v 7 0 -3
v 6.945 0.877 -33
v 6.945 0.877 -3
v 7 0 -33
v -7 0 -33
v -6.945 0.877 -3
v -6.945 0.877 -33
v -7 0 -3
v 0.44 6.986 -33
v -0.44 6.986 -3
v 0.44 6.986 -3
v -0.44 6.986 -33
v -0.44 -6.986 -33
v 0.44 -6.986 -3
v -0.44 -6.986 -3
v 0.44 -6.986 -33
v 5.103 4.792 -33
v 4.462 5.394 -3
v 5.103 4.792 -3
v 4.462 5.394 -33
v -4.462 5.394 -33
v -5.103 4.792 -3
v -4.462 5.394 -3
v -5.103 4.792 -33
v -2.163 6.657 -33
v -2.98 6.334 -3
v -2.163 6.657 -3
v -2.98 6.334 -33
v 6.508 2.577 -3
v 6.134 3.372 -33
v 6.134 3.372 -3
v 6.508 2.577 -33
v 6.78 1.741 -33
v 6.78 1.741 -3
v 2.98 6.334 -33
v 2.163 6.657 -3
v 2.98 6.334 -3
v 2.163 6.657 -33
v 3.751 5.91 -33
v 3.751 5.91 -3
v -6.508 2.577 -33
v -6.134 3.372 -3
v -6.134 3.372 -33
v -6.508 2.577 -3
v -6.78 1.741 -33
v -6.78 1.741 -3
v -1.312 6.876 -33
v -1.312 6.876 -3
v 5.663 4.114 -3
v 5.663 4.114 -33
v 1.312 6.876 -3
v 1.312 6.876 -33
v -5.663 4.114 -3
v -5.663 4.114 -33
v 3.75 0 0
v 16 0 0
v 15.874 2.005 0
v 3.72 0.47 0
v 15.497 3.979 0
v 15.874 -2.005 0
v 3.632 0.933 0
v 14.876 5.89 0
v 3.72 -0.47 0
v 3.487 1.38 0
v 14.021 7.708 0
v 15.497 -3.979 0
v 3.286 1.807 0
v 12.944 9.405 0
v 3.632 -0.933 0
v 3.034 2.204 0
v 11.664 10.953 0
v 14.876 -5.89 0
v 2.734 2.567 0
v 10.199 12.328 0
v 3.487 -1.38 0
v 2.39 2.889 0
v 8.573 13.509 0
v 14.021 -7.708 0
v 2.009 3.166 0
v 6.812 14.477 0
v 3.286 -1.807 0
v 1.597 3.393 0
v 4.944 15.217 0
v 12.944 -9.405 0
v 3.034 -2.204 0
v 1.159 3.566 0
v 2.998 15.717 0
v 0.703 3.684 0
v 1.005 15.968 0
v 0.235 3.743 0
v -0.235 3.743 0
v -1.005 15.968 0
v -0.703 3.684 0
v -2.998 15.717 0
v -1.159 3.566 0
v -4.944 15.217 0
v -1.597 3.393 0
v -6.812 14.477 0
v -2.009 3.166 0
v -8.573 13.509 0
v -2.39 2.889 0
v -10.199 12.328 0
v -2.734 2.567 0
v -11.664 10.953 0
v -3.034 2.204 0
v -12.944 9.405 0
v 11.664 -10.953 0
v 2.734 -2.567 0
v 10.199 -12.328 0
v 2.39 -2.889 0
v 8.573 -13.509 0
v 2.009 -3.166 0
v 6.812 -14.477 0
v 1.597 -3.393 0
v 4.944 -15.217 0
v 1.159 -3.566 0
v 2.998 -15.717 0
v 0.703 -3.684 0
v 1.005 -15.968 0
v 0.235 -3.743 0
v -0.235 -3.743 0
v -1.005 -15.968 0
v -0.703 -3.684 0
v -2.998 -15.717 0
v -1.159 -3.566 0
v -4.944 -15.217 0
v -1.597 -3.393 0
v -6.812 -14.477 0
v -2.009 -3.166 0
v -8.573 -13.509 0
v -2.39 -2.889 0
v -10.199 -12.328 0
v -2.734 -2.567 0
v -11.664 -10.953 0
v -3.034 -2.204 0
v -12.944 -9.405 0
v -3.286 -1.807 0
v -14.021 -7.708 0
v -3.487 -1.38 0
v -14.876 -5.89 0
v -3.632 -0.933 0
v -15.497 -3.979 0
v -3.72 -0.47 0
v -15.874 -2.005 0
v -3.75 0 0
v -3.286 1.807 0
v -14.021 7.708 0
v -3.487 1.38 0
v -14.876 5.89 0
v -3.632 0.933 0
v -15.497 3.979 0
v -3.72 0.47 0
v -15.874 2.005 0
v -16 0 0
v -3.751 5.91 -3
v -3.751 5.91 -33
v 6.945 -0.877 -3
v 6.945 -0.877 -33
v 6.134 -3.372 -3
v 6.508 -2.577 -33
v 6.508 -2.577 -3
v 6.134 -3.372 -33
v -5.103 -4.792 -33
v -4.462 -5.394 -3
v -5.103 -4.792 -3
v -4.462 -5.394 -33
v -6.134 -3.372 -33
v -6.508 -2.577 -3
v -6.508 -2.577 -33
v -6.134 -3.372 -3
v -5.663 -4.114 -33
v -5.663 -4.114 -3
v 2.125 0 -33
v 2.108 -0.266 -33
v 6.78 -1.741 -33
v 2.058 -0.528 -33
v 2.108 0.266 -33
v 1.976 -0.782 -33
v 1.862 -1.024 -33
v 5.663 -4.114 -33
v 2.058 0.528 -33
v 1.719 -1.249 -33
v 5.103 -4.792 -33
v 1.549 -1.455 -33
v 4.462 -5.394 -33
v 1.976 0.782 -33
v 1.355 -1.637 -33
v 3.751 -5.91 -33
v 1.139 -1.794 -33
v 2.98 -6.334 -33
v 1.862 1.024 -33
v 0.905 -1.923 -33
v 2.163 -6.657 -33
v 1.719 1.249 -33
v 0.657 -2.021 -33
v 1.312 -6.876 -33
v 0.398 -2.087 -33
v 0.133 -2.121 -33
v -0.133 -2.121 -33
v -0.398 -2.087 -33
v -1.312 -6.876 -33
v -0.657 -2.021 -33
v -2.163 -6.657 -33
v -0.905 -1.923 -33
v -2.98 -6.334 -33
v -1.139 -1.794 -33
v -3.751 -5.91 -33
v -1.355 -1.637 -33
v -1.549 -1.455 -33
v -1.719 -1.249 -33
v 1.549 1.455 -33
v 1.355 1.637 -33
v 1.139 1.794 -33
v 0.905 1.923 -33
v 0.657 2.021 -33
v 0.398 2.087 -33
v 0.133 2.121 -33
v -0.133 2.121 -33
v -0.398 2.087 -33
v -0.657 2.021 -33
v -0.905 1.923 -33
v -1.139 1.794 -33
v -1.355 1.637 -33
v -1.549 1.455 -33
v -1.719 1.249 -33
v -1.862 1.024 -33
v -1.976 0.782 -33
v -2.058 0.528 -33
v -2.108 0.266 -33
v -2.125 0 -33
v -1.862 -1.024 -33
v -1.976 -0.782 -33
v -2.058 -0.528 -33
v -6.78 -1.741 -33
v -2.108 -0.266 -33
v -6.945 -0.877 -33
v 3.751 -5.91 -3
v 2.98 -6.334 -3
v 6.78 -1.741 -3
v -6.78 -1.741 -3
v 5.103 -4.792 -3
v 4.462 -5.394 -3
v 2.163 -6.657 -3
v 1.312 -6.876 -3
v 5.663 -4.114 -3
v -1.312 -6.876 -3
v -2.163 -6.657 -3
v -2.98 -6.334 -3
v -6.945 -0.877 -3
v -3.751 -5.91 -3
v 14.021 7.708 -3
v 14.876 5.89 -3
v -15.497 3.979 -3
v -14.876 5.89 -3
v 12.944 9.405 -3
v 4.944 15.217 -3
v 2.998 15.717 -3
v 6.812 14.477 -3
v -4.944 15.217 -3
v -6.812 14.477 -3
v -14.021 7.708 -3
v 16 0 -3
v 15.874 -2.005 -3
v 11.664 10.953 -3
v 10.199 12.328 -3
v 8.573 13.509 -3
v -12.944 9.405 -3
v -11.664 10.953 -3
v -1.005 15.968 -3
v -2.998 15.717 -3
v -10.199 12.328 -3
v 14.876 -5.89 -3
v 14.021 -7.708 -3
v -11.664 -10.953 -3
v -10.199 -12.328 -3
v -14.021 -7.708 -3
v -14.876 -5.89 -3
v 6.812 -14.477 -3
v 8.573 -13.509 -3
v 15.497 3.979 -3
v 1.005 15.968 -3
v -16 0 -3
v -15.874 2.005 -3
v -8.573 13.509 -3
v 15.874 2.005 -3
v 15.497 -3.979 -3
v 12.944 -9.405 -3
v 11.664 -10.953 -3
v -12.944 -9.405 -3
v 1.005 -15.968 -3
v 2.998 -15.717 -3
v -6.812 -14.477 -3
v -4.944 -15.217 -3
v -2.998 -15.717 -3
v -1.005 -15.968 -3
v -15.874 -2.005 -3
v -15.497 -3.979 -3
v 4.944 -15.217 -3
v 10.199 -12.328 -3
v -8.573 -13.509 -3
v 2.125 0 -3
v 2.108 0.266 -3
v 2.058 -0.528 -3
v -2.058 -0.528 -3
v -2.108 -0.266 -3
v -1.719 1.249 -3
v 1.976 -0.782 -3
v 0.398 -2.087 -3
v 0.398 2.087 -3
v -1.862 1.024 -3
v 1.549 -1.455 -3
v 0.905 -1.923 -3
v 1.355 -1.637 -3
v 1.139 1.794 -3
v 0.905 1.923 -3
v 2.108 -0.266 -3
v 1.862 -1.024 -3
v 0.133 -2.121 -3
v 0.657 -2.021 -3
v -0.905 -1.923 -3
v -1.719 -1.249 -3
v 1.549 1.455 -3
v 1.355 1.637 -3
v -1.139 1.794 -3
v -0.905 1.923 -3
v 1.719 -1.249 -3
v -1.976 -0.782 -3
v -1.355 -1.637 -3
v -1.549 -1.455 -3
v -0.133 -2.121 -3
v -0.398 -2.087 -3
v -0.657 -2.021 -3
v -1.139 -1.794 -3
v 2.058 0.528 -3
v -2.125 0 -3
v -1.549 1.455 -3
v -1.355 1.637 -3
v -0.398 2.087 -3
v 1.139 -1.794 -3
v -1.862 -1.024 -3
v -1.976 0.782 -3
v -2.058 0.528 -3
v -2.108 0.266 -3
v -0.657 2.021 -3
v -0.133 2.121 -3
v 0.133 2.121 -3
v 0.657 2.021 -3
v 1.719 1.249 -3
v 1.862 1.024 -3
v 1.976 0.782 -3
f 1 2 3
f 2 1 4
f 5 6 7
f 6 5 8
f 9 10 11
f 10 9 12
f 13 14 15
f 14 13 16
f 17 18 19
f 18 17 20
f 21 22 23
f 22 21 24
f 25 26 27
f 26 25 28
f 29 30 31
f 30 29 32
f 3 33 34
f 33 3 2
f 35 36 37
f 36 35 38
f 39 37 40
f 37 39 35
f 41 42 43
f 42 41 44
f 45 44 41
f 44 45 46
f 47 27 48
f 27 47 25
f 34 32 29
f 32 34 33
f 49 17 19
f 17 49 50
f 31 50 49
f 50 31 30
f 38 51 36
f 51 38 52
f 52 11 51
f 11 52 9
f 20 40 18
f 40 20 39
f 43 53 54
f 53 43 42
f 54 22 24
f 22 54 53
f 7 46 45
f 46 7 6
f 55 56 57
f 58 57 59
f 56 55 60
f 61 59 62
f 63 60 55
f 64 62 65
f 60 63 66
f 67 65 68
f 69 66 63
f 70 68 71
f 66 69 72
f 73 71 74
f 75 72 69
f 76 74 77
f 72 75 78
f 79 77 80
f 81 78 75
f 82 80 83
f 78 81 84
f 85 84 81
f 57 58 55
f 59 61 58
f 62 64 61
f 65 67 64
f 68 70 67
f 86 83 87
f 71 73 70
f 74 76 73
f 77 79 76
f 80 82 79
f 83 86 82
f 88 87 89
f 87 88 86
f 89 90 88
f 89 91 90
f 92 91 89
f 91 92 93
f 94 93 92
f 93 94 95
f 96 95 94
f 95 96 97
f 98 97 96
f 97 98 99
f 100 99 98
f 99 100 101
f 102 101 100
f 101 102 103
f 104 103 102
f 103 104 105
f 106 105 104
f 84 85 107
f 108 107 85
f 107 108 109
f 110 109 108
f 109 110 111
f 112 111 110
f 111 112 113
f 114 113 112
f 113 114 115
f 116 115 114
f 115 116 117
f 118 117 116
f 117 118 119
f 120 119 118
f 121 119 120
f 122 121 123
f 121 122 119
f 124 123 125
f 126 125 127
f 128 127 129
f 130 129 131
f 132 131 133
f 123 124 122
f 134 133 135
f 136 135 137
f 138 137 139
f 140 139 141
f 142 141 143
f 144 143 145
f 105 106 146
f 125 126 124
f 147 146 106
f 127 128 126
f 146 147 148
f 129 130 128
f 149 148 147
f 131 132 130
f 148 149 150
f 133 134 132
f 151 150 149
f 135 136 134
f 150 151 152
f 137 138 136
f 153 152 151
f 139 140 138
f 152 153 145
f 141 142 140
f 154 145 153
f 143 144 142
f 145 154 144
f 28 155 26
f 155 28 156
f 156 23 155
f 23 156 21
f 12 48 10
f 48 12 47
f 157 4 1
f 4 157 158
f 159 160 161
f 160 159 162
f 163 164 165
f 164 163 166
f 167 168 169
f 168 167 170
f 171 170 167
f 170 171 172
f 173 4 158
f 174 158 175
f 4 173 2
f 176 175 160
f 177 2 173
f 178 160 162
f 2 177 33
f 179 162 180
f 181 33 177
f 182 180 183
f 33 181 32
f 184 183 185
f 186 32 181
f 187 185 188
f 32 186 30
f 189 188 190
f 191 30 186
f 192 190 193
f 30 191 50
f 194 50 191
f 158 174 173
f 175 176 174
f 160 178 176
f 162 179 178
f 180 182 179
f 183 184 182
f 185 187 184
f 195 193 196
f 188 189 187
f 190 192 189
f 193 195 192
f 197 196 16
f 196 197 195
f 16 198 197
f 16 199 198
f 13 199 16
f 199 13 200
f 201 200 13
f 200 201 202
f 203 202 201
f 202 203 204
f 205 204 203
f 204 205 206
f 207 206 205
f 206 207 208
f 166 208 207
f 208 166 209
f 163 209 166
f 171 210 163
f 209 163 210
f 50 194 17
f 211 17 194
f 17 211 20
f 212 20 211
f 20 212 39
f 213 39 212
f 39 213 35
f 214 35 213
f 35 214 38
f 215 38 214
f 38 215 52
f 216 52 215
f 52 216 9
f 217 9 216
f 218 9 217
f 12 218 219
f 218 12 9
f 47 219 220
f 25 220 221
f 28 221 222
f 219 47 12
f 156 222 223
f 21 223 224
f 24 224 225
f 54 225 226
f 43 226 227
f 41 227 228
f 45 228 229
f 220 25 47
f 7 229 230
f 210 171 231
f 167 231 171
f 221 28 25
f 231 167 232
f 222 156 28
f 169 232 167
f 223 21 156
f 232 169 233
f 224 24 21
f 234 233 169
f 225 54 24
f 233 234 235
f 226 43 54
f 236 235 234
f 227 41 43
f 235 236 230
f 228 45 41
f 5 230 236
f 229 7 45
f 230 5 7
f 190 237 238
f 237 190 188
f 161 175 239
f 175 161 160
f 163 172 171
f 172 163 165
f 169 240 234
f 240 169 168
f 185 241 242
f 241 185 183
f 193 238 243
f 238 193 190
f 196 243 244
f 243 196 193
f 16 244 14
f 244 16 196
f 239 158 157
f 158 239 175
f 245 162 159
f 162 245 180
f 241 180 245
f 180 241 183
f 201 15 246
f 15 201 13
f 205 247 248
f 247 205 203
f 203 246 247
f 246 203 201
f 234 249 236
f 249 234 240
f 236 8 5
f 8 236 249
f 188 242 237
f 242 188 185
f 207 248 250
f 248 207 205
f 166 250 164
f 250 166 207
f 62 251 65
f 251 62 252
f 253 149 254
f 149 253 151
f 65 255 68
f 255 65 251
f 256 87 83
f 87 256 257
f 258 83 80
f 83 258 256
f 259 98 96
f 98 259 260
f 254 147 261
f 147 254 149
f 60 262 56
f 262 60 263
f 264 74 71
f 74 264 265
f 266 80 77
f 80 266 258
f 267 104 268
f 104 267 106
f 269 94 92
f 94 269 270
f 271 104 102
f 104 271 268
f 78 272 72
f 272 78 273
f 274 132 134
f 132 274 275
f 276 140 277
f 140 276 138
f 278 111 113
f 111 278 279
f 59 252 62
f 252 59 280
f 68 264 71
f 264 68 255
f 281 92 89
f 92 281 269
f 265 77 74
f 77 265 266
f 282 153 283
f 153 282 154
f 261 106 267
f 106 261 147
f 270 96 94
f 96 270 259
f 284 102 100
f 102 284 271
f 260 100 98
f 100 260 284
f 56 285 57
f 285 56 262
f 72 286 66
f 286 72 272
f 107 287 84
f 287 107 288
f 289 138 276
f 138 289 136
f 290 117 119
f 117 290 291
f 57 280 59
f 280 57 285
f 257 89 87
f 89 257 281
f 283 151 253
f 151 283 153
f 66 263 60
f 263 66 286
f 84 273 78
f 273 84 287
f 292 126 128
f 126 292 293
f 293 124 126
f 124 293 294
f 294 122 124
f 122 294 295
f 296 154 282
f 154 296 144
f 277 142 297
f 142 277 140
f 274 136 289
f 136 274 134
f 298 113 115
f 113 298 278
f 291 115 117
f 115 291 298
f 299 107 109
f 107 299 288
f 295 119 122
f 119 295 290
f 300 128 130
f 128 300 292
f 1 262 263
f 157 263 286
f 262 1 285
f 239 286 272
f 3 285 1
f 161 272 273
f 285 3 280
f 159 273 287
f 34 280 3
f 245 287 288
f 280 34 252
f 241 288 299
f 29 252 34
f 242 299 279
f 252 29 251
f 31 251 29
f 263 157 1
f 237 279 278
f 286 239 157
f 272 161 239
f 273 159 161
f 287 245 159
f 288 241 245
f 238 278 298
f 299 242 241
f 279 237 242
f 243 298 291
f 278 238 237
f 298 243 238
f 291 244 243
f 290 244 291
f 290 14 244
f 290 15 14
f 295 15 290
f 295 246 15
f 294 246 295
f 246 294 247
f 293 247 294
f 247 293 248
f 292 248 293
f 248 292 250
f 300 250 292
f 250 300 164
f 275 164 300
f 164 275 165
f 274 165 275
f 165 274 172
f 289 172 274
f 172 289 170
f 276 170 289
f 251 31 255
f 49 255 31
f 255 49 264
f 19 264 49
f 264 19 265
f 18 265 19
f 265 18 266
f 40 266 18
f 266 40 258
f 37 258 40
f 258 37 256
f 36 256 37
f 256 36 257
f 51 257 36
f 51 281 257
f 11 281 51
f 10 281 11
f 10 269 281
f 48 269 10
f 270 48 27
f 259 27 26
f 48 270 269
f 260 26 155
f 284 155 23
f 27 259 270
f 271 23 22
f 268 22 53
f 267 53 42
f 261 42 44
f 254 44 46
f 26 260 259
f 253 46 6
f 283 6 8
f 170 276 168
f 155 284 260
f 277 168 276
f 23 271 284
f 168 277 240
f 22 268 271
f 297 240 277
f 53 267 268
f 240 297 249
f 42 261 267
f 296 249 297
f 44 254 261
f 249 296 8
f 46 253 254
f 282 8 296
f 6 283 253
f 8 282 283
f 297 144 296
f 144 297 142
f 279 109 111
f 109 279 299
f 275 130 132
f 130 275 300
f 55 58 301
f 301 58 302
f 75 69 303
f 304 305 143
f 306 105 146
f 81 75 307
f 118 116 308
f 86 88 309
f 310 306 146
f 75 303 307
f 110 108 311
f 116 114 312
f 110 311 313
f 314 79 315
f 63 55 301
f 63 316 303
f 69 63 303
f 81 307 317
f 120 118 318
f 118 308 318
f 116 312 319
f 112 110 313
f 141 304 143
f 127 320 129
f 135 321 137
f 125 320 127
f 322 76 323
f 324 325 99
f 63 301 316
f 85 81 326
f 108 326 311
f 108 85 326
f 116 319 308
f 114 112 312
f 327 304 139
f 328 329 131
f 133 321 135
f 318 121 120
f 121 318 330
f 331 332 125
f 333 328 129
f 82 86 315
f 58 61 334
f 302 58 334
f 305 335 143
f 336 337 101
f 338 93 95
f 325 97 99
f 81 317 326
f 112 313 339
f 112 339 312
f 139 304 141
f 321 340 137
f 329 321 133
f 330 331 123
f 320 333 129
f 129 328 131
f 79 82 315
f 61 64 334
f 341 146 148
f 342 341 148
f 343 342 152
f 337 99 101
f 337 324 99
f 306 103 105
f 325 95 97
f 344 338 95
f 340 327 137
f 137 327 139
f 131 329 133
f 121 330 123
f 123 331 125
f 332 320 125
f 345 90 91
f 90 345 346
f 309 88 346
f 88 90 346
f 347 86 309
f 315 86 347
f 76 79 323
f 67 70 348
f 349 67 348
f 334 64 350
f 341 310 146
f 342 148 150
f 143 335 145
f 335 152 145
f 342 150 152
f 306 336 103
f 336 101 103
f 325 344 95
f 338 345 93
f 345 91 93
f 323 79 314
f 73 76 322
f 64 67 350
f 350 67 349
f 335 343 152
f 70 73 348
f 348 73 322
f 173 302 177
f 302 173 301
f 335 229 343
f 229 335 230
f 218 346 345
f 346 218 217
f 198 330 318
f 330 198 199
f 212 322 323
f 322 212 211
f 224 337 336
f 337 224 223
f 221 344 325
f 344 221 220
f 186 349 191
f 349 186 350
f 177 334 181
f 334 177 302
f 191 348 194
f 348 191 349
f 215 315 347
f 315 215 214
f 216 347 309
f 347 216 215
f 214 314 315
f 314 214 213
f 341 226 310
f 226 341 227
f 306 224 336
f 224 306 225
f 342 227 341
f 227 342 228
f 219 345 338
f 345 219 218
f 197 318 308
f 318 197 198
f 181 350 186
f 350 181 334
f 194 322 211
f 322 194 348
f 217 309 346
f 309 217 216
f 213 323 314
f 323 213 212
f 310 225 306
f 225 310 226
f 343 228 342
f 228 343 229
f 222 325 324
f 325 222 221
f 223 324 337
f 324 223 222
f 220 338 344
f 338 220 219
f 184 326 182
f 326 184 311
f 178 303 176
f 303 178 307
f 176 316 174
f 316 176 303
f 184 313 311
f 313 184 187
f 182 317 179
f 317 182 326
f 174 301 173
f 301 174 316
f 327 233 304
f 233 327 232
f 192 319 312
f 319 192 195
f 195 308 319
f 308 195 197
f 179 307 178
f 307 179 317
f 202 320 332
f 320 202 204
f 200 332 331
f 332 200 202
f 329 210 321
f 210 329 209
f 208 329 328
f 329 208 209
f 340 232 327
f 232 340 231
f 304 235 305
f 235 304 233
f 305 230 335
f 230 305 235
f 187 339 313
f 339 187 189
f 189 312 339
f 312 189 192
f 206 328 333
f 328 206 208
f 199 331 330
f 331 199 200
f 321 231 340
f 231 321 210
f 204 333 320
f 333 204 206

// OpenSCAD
$fn = 50;


difference() {
	union() {
		translate(v = [0, 0, -33.0000000000]) {
			cylinder(h = 33, r = 7.0000000000);
		}
		translate(v = [0, 0, -3.0000000000]) {
			cylinder(h = 3, r = 16.0000000000);
		}
	}
	union() {
		translate(v = [0, 0, 0]) {
			rotate(a = [0, 0, 0]) {
				difference() {
					union() {
						#translate(v = [0, 0, -33.0000000000]) {
							cylinder(h = 33, r = 2.0000000000);
						}
						#translate(v = [0, 0, -3]) {
							cylinder(h = 3, r1 = 2.1250000000, r2 = 3.7500000000);
						}
						#translate(v = [0, 0, -33.0000000000]) {
							cylinder(h = 33, r = 2.1250000000);
						}
						#translate(v = [0, 0, -33.0000000000]) {
							cylinder(h = 33, r = 2.0000000000);
						}
					}
					union();
				}
			}
		}
	}
}
